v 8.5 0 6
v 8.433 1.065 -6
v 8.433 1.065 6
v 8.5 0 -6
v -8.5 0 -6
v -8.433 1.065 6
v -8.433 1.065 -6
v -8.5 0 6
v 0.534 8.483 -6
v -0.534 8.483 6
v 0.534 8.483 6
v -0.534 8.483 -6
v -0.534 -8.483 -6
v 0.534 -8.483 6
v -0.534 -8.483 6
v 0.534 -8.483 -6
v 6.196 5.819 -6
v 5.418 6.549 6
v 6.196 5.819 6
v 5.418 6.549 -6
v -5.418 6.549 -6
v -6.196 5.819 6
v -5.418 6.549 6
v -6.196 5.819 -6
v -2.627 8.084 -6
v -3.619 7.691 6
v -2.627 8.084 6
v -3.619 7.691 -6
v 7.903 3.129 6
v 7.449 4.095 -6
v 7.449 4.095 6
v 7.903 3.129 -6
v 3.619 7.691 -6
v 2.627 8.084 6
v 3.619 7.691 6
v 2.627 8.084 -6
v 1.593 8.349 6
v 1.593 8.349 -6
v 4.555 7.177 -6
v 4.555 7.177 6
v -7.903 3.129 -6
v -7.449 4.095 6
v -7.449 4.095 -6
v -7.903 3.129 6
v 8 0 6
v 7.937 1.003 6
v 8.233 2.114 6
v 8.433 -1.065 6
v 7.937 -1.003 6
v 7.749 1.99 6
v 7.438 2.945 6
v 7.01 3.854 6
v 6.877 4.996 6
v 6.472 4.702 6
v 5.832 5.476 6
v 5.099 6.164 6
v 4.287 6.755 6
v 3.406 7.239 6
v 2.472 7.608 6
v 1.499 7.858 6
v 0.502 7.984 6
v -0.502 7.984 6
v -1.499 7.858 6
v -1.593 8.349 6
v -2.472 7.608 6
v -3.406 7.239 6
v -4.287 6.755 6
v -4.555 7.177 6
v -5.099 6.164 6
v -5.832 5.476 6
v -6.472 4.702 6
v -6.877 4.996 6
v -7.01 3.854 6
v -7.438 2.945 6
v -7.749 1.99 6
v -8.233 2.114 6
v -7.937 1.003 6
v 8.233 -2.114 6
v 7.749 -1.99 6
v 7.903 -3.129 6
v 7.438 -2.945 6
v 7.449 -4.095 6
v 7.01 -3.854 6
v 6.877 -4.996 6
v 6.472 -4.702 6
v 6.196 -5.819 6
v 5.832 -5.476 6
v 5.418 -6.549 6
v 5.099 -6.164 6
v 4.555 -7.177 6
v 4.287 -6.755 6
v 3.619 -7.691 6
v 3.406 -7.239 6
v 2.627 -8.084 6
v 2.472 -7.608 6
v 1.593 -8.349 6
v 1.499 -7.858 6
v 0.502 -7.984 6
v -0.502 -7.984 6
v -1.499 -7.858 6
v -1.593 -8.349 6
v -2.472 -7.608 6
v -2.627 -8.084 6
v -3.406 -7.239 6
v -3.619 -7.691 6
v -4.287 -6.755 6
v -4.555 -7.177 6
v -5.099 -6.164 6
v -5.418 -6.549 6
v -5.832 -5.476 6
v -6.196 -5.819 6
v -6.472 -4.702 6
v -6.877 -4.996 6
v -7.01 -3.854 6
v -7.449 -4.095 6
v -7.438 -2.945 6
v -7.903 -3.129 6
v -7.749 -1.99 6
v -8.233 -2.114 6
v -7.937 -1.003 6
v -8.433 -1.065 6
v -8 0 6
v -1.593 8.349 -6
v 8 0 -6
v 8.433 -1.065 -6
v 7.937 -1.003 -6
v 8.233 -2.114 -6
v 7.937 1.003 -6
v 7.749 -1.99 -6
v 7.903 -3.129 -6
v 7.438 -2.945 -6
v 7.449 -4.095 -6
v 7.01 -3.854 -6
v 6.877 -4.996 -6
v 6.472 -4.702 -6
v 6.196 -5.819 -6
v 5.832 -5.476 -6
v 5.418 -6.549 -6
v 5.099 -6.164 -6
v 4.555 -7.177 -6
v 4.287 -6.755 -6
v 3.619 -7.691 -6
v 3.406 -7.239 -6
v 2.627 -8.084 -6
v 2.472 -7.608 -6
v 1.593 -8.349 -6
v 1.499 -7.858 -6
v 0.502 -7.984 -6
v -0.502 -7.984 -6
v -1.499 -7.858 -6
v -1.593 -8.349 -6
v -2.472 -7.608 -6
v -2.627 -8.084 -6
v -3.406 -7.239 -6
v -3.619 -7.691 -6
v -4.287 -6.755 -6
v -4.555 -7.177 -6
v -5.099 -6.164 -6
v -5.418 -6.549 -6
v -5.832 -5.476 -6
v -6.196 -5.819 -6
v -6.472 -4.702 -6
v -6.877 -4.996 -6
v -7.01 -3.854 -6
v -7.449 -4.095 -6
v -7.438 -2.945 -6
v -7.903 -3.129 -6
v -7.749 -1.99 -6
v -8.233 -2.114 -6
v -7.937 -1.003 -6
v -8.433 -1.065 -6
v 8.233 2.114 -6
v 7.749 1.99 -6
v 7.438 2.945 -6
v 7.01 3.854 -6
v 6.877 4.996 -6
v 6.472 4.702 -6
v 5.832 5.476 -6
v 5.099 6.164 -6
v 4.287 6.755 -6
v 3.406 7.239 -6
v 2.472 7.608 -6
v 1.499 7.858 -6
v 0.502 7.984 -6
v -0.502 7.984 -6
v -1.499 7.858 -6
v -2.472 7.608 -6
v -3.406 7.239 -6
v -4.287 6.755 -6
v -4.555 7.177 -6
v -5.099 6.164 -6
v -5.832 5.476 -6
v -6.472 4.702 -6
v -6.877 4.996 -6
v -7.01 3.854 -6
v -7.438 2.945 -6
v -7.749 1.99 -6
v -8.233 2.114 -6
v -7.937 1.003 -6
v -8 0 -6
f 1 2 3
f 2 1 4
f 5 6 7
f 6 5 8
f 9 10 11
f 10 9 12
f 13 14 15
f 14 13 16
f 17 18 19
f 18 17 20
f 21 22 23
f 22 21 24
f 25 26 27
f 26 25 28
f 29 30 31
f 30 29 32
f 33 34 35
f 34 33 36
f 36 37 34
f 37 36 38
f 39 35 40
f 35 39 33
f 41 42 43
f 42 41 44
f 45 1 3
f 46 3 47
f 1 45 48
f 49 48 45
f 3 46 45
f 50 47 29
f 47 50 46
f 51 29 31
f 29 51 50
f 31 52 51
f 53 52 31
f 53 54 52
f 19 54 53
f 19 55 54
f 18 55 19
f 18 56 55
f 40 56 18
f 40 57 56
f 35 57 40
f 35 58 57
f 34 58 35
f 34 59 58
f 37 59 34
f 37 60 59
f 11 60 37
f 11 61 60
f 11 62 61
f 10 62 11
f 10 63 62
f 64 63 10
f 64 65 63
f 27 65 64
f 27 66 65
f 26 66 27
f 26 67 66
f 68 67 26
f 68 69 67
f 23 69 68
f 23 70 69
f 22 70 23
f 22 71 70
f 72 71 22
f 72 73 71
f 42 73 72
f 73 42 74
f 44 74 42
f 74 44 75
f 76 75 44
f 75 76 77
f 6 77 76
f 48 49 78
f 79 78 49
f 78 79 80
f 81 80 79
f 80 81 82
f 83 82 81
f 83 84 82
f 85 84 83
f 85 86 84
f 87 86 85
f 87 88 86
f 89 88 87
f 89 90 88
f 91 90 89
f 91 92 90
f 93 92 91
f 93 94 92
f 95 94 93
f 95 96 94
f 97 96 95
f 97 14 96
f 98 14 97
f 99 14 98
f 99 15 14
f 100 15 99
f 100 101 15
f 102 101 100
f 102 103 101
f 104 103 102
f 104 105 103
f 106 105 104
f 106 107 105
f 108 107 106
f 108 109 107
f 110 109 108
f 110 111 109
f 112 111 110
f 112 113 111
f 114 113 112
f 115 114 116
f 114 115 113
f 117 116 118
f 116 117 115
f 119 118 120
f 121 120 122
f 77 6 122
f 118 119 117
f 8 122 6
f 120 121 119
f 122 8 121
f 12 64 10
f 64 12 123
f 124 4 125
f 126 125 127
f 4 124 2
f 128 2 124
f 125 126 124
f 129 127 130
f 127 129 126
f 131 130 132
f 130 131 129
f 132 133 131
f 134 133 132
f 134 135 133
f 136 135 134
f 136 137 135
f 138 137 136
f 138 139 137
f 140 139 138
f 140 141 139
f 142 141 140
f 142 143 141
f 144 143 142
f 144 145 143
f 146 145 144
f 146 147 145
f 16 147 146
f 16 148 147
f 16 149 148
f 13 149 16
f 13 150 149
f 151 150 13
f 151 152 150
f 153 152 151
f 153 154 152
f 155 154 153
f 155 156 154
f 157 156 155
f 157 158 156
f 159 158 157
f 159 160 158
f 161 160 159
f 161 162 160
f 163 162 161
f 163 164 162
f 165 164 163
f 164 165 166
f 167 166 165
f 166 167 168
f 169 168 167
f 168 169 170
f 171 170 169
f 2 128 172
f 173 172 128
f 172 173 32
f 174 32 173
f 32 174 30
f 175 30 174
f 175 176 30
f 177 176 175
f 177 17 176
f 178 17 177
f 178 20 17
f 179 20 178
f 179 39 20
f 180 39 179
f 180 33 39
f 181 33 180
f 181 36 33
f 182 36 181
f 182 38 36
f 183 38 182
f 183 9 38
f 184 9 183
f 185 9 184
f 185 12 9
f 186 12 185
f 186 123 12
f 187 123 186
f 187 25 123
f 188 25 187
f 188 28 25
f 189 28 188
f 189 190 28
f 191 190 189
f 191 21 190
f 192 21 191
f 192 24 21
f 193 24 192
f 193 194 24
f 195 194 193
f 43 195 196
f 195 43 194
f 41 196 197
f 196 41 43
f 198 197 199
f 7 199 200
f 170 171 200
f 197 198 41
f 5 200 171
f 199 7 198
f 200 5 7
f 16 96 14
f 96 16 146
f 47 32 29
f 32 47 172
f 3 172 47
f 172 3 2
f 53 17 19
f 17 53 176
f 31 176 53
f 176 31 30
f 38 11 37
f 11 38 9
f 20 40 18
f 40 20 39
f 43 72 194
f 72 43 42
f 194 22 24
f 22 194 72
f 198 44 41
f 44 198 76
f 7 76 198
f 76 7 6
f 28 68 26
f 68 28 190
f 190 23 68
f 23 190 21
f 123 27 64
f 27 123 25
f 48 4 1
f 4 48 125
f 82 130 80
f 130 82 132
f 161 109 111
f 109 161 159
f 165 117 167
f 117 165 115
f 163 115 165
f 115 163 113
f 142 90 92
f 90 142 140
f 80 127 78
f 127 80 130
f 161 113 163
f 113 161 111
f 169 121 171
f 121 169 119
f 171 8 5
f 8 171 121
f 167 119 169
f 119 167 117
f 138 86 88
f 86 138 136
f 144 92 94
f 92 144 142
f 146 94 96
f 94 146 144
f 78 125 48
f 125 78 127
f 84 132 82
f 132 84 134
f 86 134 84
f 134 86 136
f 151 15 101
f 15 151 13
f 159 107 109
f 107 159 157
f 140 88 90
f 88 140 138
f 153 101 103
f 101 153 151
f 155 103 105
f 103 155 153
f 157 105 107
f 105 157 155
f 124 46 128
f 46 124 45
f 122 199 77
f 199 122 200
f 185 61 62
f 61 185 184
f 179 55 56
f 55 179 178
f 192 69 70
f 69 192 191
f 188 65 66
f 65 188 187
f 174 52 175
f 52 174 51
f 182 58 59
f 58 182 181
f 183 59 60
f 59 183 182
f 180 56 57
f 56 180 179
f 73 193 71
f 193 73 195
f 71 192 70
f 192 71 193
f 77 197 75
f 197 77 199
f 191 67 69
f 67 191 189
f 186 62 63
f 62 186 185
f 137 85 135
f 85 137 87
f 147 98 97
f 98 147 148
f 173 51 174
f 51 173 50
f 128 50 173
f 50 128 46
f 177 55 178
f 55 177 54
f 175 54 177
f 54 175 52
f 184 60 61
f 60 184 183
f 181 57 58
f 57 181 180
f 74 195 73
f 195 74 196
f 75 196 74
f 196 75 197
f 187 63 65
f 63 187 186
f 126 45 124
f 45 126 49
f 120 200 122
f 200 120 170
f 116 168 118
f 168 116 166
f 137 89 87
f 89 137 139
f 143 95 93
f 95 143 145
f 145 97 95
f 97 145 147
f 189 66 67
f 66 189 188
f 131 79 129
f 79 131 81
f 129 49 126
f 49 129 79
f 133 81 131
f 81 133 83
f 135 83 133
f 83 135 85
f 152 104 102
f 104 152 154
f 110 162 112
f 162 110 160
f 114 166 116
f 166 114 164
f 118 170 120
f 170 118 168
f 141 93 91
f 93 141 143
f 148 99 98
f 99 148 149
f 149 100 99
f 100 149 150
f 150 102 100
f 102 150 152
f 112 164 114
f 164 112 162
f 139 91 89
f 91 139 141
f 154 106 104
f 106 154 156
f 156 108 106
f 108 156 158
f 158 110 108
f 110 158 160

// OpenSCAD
$fn = 50;


difference() {
	union() {
		translate(v = [0, 0, -6.0000000000]) {
			cylinder(h = 12, r = 8.5000000000);
		}
	}
	union() {
		translate(v = [0, 0, -100.0000000000]) {
			cylinder(h = 200, r = 8);
		}
	}
}
